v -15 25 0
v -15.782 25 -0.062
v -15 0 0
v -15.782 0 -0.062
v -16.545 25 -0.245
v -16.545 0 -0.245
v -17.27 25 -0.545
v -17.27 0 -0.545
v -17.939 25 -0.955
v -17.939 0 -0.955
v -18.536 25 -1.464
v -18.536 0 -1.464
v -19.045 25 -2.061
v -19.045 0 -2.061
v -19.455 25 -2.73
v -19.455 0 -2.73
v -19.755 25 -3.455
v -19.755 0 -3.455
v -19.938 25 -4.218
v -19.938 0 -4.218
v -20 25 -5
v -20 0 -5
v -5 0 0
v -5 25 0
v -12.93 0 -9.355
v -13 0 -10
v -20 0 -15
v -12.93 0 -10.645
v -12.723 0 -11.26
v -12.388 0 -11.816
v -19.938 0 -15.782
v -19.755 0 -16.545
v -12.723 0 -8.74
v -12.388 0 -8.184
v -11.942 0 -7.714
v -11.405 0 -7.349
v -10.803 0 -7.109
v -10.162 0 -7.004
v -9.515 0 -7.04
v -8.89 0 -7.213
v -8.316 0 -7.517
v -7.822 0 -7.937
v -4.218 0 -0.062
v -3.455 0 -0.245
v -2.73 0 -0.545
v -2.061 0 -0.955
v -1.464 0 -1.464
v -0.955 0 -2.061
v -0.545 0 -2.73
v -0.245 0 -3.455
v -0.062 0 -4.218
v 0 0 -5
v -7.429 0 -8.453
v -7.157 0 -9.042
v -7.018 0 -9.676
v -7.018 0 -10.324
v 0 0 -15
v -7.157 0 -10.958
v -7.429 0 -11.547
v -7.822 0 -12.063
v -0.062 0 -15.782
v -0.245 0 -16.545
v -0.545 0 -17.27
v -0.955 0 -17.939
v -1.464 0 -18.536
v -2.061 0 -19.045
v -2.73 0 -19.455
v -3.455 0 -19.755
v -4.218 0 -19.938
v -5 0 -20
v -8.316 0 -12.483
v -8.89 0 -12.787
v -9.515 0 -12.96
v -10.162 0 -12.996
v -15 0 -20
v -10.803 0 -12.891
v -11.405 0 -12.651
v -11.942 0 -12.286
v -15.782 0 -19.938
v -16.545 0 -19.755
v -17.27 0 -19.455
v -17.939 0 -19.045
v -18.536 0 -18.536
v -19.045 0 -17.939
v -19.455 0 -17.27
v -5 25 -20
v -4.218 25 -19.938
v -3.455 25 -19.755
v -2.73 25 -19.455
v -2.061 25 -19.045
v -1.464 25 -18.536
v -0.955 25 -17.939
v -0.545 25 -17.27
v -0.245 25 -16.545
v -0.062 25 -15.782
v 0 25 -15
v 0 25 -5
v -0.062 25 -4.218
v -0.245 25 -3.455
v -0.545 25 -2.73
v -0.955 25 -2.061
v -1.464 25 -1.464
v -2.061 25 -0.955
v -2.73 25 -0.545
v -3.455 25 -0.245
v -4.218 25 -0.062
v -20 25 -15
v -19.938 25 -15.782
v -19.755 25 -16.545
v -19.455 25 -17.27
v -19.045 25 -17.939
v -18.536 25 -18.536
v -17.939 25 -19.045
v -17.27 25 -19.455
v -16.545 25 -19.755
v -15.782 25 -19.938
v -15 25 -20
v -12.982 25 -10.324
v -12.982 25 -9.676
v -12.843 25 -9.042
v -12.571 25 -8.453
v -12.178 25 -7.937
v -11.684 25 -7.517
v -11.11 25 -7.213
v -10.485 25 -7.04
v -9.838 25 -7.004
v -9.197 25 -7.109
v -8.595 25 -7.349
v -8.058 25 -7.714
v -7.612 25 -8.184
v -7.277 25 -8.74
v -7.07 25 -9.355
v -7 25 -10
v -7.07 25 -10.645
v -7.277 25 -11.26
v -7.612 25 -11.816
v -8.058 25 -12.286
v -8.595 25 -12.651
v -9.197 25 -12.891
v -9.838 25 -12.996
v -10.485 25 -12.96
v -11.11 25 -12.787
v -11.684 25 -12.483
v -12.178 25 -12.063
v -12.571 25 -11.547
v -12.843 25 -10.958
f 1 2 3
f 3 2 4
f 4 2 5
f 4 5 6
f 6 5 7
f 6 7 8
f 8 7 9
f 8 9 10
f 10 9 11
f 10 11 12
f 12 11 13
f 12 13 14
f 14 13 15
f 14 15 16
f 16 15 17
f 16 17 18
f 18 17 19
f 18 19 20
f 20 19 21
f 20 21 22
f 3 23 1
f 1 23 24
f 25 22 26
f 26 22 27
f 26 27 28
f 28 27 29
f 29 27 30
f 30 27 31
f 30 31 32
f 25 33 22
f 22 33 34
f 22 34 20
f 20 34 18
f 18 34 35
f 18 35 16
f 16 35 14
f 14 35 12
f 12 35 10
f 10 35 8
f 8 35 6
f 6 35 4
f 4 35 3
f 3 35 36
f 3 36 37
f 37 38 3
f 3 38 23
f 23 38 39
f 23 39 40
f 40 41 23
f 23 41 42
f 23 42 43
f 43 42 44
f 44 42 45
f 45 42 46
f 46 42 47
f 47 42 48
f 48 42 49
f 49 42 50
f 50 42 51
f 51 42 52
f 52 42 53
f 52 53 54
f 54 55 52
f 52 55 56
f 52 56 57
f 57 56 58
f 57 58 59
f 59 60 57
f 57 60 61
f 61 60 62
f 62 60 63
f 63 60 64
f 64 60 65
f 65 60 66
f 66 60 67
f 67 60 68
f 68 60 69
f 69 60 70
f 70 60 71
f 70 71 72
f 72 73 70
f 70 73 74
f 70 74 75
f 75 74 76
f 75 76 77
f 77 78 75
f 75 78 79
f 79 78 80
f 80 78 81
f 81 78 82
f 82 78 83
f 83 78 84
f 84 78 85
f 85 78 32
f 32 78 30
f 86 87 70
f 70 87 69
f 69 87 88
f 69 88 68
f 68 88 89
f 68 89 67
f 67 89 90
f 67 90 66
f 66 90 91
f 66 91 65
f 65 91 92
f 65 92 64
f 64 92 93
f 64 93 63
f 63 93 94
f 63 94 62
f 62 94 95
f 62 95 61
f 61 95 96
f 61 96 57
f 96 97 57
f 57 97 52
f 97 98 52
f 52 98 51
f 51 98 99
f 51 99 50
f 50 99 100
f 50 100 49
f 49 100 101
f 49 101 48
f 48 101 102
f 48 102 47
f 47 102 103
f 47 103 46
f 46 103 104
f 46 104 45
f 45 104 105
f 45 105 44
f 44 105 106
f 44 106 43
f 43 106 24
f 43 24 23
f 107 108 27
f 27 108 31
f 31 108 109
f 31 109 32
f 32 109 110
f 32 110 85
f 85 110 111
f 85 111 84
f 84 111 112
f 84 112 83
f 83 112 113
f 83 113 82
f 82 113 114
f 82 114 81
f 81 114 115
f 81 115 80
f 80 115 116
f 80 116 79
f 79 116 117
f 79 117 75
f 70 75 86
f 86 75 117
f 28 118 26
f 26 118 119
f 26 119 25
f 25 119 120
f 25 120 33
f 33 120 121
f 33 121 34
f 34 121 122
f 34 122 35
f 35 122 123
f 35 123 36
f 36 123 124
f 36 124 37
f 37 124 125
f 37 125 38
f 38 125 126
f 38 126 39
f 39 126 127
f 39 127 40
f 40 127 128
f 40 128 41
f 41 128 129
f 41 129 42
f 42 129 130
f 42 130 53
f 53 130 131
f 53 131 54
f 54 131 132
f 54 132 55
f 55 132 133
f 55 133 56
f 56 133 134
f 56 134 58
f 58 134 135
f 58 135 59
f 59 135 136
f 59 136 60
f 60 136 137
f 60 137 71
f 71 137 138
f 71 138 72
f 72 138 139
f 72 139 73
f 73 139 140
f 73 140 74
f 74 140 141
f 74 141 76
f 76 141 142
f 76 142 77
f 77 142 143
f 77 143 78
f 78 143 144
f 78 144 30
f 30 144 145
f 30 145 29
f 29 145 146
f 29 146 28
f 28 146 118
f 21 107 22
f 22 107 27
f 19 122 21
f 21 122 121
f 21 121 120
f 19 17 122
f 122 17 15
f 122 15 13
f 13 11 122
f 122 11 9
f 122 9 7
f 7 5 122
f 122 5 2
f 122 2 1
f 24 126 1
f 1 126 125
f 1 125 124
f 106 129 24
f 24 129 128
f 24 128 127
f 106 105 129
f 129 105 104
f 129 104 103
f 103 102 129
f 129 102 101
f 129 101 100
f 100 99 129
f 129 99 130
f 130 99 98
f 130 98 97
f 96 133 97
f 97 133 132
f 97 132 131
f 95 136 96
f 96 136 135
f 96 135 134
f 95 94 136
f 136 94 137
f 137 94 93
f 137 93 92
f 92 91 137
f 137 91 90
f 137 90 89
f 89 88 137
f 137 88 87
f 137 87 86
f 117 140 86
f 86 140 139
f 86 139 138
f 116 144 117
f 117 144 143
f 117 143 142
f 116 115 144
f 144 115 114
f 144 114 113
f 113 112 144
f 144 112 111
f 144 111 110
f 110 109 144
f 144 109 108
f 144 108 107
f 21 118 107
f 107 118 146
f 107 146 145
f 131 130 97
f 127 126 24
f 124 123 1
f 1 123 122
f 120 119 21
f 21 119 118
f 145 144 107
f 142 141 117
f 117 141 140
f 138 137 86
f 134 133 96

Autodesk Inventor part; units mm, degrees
ref_plane "YZ Plane" through (0, 0, 0) normal (1, 0, 0) x (0, 1, 0)
ref_plane "XZ Plane" through (0, 0, 0) normal (0, 1, 0) x (-1, 0, 0)
ref_plane "XY Plane" through (0, 0, 0) normal (0, 0, 1) x (1, 0, 0)
sketch "Sketch1" plane through (0, 0, 0) normal (0, 1, 0) x (-1, 0, 0)
  line L0 (0, 0) -> (20, 0)
  line L1 (20, 0) -> (20, -20)
  line L2 (20, -20) -> (0, -20)
  line L3 (0, -20) -> (0, 0)
  dimension "d0" = 20
  dimension "d1" = 20
extrude "Extrusion1" add sketch "Sketch1" along normal blind 25
sketch "Sketch2" plane through (0, 25, 0) normal (0, 1, 0) x (1, 0, 0)
  circle A0 centre (-10, 10) radius 3
  line L0 (0, 20) -> (-20, 20) projected
  line L1 (-20, 20) -> (-20, 0) projected
  point P0 (0, 0)
  dimension "d4" = 6
  dimension "d5" = 10
  dimension "d6" = 10
extrude "Extrusion2" cut sketch "Sketch2" against normal through all
fillet "Fillet1" radius 5 4 edges at (-20, 12.5, -20) (0, 12.5, 0) (0, 12.5, -20) (-20, 12.5, 0)
properties part number "SpacerBlock_25mm"
